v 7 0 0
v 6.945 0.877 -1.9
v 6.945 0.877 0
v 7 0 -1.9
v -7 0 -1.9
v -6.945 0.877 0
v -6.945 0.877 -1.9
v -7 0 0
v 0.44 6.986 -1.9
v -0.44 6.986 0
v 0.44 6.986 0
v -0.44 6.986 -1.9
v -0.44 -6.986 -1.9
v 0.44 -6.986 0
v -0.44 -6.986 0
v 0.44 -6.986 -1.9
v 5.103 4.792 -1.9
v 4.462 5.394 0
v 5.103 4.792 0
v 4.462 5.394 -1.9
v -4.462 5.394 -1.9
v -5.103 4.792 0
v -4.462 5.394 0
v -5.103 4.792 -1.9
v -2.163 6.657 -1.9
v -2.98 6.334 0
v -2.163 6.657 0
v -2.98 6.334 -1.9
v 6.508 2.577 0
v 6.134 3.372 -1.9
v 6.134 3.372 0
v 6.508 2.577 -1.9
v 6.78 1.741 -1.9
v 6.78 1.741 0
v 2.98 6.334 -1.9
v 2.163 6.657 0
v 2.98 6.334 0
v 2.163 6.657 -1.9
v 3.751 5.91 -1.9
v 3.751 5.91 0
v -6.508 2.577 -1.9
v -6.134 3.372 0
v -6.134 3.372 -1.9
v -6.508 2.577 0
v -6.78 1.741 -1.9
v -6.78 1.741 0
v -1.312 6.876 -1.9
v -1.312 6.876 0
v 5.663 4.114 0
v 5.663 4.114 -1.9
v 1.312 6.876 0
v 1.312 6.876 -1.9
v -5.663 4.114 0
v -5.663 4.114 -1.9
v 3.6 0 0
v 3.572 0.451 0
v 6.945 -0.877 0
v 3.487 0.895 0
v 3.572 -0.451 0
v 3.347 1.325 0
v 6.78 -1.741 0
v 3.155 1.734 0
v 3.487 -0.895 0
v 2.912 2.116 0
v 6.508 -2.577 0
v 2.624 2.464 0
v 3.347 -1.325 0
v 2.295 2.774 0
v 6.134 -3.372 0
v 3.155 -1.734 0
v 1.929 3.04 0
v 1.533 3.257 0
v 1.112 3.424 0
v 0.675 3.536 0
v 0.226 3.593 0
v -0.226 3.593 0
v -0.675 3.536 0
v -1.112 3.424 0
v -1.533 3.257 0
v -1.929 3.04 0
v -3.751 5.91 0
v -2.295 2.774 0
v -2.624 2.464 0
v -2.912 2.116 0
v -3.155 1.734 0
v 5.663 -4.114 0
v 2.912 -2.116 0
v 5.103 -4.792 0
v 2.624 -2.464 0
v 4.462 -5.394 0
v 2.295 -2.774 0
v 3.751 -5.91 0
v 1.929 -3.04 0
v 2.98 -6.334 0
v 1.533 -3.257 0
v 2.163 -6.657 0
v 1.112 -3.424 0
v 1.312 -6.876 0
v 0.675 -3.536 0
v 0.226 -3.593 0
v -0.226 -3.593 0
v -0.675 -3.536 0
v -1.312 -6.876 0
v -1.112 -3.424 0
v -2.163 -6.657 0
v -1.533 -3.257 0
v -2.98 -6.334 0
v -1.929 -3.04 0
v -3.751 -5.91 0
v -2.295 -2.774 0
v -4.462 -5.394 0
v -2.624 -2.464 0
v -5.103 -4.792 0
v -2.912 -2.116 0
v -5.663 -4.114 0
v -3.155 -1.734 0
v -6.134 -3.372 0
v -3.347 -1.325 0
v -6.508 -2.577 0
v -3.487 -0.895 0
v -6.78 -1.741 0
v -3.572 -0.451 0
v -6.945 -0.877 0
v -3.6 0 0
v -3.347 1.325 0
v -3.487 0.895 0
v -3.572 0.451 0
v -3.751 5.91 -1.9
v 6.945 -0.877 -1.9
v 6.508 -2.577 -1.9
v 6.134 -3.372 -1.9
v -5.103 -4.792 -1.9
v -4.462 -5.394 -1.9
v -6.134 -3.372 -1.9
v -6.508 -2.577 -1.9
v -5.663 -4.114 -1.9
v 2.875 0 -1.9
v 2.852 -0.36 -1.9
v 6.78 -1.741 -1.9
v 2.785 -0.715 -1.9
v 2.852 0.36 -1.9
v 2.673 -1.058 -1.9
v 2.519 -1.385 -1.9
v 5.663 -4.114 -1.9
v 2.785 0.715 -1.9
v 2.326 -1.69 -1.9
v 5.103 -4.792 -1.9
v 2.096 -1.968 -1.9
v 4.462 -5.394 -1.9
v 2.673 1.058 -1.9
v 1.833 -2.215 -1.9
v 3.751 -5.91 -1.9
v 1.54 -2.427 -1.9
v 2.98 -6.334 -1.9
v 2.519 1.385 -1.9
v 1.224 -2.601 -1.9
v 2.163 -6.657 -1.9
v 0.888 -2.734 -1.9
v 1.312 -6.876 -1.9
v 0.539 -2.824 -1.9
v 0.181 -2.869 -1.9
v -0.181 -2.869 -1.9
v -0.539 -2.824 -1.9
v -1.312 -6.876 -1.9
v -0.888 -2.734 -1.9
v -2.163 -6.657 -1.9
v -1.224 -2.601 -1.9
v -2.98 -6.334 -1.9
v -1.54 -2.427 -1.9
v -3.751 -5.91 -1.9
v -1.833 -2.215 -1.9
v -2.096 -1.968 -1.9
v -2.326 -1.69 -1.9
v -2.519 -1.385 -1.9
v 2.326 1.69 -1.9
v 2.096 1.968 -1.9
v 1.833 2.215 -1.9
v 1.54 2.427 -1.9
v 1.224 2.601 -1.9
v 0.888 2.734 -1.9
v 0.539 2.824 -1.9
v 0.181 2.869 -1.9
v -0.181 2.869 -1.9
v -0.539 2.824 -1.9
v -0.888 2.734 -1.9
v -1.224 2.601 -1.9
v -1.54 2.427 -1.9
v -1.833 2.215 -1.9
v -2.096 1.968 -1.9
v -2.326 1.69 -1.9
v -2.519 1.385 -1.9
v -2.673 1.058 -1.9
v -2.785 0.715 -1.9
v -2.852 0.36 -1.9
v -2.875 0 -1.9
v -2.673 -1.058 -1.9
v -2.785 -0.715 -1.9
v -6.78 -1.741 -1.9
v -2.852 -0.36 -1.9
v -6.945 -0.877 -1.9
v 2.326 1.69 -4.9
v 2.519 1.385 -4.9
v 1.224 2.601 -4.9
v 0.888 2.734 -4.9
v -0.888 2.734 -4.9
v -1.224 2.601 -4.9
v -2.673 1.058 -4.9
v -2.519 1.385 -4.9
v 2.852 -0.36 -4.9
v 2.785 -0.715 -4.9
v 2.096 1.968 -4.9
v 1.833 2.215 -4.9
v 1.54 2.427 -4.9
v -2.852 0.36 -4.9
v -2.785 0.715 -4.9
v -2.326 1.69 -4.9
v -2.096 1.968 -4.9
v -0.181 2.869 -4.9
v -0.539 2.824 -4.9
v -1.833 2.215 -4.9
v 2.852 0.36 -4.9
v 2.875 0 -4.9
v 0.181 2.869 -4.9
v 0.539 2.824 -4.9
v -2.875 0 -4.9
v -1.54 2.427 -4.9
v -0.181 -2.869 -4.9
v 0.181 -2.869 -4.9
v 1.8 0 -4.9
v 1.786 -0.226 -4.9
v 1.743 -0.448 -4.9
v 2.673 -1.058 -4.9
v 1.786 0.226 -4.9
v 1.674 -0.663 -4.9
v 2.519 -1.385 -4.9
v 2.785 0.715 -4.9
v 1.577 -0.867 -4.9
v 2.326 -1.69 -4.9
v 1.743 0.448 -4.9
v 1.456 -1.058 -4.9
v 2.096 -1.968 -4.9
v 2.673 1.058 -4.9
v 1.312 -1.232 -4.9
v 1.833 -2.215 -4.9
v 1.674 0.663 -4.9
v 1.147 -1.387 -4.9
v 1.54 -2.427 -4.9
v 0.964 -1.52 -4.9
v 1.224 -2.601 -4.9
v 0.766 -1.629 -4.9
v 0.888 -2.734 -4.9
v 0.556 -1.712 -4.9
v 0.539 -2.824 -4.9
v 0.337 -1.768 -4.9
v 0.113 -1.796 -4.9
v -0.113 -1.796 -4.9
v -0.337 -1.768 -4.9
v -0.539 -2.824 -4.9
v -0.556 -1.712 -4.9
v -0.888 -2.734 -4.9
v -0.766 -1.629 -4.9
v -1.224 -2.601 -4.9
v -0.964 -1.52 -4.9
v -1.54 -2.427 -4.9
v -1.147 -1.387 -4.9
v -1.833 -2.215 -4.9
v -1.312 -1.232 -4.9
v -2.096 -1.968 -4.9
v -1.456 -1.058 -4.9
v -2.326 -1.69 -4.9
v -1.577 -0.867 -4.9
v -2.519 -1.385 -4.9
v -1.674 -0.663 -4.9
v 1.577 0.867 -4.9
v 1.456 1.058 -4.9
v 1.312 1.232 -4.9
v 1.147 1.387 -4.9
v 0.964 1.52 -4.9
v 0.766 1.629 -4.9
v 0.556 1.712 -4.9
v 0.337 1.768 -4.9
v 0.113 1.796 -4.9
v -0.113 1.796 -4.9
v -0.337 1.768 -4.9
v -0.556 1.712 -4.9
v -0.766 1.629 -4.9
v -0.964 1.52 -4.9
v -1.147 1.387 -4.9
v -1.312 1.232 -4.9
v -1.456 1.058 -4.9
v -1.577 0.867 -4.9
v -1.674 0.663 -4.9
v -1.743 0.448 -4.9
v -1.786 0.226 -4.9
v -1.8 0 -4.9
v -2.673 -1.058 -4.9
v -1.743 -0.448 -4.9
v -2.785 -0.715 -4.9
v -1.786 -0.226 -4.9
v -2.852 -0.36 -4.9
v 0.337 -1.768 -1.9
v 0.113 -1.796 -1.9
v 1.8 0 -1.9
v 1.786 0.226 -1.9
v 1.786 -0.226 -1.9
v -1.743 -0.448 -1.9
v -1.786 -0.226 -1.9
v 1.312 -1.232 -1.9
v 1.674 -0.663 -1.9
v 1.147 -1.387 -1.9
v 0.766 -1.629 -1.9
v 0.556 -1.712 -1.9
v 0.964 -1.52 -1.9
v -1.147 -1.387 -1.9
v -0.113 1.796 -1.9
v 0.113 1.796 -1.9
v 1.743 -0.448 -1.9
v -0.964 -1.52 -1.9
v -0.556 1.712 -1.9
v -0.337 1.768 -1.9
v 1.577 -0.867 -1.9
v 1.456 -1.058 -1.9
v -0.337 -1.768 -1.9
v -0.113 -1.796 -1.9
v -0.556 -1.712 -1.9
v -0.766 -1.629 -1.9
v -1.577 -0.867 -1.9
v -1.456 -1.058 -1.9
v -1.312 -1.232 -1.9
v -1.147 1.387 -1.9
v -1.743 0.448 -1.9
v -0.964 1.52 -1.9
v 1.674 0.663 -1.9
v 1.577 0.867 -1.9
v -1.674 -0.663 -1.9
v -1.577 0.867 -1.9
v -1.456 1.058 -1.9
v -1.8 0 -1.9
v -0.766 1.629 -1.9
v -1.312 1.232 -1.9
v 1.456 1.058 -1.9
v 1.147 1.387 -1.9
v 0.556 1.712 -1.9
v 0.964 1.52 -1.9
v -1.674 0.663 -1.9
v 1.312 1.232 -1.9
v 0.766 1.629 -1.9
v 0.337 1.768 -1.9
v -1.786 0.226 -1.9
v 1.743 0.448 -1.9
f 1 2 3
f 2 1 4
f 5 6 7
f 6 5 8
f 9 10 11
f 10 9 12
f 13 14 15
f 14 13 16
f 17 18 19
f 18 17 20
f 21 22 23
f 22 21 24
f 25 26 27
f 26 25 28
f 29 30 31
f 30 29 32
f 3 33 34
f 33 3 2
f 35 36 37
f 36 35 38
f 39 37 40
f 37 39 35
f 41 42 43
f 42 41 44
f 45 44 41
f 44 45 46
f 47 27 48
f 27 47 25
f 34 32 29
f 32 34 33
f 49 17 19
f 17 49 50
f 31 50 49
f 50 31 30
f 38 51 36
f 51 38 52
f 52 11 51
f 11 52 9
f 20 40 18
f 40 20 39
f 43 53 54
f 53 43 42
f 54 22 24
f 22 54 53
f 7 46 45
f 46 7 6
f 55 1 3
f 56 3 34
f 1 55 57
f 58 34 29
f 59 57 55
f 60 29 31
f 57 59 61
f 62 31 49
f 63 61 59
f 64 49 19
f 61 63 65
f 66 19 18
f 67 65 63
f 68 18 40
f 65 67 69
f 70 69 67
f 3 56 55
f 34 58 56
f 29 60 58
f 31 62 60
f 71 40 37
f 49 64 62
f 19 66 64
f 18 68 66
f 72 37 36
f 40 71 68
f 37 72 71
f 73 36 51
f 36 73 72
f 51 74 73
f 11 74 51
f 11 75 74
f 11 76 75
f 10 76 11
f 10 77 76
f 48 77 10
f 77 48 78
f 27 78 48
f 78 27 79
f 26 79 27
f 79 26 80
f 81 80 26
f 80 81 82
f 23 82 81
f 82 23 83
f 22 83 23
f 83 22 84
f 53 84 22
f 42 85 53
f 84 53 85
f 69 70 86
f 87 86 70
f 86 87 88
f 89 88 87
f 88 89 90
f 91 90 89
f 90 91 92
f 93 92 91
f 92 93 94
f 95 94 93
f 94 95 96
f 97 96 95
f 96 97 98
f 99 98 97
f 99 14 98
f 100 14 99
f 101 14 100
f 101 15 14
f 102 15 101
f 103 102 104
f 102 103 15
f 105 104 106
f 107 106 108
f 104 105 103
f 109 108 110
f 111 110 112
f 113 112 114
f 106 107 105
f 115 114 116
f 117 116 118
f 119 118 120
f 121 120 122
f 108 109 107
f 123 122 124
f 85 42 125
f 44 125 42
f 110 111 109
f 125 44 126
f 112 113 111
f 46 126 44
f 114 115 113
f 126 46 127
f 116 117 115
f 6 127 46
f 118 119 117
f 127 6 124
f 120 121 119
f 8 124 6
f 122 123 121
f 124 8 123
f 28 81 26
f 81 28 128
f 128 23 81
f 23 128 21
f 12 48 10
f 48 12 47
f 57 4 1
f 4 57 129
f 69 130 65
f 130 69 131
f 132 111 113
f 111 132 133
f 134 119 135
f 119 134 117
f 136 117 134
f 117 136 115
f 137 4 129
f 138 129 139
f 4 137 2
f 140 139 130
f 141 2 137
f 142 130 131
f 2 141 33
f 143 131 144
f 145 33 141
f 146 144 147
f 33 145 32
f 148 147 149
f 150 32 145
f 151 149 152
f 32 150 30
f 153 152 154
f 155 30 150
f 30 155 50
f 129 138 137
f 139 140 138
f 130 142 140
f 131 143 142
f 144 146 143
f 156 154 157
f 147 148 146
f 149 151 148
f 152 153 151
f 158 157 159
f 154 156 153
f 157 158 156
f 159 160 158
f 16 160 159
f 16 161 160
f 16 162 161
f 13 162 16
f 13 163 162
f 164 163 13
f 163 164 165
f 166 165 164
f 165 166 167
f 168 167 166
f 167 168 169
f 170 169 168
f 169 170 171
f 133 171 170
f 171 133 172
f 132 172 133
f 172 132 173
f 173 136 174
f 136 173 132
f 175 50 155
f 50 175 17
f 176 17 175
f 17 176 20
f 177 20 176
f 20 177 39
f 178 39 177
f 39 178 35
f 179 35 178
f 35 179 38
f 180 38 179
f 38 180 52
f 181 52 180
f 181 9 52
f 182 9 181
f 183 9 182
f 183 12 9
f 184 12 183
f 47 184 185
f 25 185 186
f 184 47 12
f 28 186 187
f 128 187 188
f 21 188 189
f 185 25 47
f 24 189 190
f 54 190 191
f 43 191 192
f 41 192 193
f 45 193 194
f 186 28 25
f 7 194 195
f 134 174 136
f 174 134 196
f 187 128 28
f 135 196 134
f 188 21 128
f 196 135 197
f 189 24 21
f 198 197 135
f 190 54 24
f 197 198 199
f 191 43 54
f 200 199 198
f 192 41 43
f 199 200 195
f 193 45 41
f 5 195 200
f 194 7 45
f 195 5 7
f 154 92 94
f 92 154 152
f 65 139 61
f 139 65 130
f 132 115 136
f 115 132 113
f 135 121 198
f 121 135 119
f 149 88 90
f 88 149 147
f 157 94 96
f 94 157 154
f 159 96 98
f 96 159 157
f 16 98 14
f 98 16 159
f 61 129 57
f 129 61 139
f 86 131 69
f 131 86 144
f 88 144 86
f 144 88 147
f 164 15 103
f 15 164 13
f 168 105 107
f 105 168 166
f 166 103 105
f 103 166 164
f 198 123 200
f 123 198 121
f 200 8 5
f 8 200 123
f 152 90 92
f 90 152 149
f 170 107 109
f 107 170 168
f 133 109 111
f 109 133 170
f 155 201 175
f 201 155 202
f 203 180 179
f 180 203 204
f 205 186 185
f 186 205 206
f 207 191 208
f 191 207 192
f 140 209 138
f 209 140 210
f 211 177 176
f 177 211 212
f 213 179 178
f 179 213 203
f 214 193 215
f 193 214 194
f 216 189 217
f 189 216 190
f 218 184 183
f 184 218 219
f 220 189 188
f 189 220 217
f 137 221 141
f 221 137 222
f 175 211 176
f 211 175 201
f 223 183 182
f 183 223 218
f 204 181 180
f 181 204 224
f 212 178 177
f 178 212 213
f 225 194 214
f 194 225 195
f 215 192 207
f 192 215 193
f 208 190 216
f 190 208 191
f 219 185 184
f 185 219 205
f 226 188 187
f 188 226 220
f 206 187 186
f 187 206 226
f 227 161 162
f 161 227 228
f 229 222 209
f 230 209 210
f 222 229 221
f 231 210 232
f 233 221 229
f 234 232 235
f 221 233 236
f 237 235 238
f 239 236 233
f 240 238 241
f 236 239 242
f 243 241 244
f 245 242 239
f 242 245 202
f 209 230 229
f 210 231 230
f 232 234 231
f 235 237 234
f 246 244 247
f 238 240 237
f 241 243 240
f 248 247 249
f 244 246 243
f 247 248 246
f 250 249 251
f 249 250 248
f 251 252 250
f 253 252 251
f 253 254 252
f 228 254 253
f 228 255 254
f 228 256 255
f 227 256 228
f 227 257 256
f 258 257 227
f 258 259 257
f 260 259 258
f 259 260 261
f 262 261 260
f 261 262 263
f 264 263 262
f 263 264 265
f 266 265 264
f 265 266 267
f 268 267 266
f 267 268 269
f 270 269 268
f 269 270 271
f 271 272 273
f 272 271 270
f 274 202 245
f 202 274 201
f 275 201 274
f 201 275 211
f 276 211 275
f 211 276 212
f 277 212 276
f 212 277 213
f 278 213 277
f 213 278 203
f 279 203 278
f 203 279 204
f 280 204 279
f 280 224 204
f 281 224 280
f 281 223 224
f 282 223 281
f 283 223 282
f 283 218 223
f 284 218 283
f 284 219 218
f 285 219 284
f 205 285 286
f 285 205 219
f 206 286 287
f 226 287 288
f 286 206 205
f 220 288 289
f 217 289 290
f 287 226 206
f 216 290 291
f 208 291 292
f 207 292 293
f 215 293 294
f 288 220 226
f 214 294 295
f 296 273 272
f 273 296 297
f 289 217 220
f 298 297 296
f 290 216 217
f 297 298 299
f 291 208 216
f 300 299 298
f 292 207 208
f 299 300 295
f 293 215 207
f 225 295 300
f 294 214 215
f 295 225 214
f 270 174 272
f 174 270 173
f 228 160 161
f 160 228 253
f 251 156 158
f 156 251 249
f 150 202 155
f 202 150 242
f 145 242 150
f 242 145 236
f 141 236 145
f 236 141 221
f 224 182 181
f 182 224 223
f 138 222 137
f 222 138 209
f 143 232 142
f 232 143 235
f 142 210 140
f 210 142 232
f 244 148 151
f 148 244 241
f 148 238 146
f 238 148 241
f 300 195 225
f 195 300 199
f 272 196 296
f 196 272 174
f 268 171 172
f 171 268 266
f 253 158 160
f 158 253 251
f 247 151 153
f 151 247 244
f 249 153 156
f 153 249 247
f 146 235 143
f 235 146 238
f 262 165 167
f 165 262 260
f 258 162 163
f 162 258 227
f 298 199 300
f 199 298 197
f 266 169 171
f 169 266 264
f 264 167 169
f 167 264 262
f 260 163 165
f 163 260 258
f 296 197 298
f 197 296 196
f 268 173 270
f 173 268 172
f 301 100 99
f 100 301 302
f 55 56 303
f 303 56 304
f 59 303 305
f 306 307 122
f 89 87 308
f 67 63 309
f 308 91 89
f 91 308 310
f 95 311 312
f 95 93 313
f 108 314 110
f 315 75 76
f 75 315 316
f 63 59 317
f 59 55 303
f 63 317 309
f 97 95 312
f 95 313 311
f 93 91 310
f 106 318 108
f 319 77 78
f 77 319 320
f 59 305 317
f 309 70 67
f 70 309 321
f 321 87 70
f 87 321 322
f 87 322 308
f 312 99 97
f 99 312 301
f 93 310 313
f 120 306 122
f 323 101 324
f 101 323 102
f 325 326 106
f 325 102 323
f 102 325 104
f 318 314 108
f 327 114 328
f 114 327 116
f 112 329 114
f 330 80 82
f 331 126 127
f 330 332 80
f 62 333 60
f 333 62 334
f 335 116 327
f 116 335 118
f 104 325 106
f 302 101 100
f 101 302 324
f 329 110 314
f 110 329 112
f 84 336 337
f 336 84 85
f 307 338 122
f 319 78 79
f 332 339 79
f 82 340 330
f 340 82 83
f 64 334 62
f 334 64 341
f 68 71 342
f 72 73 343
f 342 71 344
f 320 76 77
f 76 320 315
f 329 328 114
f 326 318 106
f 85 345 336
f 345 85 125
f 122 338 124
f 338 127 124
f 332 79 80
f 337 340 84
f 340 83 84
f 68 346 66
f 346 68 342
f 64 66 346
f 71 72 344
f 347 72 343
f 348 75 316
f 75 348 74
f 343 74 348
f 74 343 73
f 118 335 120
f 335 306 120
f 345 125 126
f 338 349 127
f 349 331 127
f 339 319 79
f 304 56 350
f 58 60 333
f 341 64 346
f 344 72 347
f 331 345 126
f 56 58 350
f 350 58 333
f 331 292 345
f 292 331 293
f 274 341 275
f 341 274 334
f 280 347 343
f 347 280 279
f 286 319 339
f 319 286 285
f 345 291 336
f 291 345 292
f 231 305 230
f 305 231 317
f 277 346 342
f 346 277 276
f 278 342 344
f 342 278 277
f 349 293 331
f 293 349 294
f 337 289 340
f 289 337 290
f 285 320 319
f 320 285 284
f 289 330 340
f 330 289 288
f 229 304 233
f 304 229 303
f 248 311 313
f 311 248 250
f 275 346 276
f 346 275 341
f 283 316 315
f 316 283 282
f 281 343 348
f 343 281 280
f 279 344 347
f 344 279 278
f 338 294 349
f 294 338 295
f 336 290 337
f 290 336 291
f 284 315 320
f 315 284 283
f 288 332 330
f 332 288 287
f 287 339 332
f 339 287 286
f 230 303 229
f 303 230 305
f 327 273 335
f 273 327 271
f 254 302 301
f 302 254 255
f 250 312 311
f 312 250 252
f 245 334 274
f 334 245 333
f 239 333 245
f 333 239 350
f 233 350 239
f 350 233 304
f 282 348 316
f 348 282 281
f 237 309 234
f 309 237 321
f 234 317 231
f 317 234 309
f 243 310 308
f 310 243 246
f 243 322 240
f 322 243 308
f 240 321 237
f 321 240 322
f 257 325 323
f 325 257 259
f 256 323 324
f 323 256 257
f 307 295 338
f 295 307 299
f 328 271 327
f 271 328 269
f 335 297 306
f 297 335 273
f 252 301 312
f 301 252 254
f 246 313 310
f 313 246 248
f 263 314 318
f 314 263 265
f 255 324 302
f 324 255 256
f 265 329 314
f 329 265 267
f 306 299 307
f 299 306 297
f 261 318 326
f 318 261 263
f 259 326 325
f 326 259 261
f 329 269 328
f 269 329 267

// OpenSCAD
$fn = 50;


difference() {
	union() {
		translate(v = [0, 0, -1.9000000000]) {
			cylinder(h = 1.9000000000, r = 7.0000000000);
		}
		translate(v = [0, 0, -4.9000000000]) {
			cylinder(h = 4.9000000000, r = 2.8750000000);
		}
	}
	union() {
		translate(v = [0, 0, 0]) {
			rotate(a = [0, 0, 0]) {
				difference() {
					union() {
						translate(v = [0, 0, -4.9000000000]) {
							cylinder(h = 4.9000000000, r = 1.5000000000);
						}
						translate(v = [0, 0, -1.9000000000]) {
							cylinder(h = 1.9000000000, r1 = 1.8000000000, r2 = 3.6000000000);
						}
						translate(v = [0, 0, -4.9000000000]) {
							cylinder(h = 4.9000000000, r = 1.8000000000);
						}
						translate(v = [0, 0, -4.9000000000]) {
							cylinder(h = 4.9000000000, r = 1.5000000000);
						}
					}
					union();
				}
			}
		}
	}
}
